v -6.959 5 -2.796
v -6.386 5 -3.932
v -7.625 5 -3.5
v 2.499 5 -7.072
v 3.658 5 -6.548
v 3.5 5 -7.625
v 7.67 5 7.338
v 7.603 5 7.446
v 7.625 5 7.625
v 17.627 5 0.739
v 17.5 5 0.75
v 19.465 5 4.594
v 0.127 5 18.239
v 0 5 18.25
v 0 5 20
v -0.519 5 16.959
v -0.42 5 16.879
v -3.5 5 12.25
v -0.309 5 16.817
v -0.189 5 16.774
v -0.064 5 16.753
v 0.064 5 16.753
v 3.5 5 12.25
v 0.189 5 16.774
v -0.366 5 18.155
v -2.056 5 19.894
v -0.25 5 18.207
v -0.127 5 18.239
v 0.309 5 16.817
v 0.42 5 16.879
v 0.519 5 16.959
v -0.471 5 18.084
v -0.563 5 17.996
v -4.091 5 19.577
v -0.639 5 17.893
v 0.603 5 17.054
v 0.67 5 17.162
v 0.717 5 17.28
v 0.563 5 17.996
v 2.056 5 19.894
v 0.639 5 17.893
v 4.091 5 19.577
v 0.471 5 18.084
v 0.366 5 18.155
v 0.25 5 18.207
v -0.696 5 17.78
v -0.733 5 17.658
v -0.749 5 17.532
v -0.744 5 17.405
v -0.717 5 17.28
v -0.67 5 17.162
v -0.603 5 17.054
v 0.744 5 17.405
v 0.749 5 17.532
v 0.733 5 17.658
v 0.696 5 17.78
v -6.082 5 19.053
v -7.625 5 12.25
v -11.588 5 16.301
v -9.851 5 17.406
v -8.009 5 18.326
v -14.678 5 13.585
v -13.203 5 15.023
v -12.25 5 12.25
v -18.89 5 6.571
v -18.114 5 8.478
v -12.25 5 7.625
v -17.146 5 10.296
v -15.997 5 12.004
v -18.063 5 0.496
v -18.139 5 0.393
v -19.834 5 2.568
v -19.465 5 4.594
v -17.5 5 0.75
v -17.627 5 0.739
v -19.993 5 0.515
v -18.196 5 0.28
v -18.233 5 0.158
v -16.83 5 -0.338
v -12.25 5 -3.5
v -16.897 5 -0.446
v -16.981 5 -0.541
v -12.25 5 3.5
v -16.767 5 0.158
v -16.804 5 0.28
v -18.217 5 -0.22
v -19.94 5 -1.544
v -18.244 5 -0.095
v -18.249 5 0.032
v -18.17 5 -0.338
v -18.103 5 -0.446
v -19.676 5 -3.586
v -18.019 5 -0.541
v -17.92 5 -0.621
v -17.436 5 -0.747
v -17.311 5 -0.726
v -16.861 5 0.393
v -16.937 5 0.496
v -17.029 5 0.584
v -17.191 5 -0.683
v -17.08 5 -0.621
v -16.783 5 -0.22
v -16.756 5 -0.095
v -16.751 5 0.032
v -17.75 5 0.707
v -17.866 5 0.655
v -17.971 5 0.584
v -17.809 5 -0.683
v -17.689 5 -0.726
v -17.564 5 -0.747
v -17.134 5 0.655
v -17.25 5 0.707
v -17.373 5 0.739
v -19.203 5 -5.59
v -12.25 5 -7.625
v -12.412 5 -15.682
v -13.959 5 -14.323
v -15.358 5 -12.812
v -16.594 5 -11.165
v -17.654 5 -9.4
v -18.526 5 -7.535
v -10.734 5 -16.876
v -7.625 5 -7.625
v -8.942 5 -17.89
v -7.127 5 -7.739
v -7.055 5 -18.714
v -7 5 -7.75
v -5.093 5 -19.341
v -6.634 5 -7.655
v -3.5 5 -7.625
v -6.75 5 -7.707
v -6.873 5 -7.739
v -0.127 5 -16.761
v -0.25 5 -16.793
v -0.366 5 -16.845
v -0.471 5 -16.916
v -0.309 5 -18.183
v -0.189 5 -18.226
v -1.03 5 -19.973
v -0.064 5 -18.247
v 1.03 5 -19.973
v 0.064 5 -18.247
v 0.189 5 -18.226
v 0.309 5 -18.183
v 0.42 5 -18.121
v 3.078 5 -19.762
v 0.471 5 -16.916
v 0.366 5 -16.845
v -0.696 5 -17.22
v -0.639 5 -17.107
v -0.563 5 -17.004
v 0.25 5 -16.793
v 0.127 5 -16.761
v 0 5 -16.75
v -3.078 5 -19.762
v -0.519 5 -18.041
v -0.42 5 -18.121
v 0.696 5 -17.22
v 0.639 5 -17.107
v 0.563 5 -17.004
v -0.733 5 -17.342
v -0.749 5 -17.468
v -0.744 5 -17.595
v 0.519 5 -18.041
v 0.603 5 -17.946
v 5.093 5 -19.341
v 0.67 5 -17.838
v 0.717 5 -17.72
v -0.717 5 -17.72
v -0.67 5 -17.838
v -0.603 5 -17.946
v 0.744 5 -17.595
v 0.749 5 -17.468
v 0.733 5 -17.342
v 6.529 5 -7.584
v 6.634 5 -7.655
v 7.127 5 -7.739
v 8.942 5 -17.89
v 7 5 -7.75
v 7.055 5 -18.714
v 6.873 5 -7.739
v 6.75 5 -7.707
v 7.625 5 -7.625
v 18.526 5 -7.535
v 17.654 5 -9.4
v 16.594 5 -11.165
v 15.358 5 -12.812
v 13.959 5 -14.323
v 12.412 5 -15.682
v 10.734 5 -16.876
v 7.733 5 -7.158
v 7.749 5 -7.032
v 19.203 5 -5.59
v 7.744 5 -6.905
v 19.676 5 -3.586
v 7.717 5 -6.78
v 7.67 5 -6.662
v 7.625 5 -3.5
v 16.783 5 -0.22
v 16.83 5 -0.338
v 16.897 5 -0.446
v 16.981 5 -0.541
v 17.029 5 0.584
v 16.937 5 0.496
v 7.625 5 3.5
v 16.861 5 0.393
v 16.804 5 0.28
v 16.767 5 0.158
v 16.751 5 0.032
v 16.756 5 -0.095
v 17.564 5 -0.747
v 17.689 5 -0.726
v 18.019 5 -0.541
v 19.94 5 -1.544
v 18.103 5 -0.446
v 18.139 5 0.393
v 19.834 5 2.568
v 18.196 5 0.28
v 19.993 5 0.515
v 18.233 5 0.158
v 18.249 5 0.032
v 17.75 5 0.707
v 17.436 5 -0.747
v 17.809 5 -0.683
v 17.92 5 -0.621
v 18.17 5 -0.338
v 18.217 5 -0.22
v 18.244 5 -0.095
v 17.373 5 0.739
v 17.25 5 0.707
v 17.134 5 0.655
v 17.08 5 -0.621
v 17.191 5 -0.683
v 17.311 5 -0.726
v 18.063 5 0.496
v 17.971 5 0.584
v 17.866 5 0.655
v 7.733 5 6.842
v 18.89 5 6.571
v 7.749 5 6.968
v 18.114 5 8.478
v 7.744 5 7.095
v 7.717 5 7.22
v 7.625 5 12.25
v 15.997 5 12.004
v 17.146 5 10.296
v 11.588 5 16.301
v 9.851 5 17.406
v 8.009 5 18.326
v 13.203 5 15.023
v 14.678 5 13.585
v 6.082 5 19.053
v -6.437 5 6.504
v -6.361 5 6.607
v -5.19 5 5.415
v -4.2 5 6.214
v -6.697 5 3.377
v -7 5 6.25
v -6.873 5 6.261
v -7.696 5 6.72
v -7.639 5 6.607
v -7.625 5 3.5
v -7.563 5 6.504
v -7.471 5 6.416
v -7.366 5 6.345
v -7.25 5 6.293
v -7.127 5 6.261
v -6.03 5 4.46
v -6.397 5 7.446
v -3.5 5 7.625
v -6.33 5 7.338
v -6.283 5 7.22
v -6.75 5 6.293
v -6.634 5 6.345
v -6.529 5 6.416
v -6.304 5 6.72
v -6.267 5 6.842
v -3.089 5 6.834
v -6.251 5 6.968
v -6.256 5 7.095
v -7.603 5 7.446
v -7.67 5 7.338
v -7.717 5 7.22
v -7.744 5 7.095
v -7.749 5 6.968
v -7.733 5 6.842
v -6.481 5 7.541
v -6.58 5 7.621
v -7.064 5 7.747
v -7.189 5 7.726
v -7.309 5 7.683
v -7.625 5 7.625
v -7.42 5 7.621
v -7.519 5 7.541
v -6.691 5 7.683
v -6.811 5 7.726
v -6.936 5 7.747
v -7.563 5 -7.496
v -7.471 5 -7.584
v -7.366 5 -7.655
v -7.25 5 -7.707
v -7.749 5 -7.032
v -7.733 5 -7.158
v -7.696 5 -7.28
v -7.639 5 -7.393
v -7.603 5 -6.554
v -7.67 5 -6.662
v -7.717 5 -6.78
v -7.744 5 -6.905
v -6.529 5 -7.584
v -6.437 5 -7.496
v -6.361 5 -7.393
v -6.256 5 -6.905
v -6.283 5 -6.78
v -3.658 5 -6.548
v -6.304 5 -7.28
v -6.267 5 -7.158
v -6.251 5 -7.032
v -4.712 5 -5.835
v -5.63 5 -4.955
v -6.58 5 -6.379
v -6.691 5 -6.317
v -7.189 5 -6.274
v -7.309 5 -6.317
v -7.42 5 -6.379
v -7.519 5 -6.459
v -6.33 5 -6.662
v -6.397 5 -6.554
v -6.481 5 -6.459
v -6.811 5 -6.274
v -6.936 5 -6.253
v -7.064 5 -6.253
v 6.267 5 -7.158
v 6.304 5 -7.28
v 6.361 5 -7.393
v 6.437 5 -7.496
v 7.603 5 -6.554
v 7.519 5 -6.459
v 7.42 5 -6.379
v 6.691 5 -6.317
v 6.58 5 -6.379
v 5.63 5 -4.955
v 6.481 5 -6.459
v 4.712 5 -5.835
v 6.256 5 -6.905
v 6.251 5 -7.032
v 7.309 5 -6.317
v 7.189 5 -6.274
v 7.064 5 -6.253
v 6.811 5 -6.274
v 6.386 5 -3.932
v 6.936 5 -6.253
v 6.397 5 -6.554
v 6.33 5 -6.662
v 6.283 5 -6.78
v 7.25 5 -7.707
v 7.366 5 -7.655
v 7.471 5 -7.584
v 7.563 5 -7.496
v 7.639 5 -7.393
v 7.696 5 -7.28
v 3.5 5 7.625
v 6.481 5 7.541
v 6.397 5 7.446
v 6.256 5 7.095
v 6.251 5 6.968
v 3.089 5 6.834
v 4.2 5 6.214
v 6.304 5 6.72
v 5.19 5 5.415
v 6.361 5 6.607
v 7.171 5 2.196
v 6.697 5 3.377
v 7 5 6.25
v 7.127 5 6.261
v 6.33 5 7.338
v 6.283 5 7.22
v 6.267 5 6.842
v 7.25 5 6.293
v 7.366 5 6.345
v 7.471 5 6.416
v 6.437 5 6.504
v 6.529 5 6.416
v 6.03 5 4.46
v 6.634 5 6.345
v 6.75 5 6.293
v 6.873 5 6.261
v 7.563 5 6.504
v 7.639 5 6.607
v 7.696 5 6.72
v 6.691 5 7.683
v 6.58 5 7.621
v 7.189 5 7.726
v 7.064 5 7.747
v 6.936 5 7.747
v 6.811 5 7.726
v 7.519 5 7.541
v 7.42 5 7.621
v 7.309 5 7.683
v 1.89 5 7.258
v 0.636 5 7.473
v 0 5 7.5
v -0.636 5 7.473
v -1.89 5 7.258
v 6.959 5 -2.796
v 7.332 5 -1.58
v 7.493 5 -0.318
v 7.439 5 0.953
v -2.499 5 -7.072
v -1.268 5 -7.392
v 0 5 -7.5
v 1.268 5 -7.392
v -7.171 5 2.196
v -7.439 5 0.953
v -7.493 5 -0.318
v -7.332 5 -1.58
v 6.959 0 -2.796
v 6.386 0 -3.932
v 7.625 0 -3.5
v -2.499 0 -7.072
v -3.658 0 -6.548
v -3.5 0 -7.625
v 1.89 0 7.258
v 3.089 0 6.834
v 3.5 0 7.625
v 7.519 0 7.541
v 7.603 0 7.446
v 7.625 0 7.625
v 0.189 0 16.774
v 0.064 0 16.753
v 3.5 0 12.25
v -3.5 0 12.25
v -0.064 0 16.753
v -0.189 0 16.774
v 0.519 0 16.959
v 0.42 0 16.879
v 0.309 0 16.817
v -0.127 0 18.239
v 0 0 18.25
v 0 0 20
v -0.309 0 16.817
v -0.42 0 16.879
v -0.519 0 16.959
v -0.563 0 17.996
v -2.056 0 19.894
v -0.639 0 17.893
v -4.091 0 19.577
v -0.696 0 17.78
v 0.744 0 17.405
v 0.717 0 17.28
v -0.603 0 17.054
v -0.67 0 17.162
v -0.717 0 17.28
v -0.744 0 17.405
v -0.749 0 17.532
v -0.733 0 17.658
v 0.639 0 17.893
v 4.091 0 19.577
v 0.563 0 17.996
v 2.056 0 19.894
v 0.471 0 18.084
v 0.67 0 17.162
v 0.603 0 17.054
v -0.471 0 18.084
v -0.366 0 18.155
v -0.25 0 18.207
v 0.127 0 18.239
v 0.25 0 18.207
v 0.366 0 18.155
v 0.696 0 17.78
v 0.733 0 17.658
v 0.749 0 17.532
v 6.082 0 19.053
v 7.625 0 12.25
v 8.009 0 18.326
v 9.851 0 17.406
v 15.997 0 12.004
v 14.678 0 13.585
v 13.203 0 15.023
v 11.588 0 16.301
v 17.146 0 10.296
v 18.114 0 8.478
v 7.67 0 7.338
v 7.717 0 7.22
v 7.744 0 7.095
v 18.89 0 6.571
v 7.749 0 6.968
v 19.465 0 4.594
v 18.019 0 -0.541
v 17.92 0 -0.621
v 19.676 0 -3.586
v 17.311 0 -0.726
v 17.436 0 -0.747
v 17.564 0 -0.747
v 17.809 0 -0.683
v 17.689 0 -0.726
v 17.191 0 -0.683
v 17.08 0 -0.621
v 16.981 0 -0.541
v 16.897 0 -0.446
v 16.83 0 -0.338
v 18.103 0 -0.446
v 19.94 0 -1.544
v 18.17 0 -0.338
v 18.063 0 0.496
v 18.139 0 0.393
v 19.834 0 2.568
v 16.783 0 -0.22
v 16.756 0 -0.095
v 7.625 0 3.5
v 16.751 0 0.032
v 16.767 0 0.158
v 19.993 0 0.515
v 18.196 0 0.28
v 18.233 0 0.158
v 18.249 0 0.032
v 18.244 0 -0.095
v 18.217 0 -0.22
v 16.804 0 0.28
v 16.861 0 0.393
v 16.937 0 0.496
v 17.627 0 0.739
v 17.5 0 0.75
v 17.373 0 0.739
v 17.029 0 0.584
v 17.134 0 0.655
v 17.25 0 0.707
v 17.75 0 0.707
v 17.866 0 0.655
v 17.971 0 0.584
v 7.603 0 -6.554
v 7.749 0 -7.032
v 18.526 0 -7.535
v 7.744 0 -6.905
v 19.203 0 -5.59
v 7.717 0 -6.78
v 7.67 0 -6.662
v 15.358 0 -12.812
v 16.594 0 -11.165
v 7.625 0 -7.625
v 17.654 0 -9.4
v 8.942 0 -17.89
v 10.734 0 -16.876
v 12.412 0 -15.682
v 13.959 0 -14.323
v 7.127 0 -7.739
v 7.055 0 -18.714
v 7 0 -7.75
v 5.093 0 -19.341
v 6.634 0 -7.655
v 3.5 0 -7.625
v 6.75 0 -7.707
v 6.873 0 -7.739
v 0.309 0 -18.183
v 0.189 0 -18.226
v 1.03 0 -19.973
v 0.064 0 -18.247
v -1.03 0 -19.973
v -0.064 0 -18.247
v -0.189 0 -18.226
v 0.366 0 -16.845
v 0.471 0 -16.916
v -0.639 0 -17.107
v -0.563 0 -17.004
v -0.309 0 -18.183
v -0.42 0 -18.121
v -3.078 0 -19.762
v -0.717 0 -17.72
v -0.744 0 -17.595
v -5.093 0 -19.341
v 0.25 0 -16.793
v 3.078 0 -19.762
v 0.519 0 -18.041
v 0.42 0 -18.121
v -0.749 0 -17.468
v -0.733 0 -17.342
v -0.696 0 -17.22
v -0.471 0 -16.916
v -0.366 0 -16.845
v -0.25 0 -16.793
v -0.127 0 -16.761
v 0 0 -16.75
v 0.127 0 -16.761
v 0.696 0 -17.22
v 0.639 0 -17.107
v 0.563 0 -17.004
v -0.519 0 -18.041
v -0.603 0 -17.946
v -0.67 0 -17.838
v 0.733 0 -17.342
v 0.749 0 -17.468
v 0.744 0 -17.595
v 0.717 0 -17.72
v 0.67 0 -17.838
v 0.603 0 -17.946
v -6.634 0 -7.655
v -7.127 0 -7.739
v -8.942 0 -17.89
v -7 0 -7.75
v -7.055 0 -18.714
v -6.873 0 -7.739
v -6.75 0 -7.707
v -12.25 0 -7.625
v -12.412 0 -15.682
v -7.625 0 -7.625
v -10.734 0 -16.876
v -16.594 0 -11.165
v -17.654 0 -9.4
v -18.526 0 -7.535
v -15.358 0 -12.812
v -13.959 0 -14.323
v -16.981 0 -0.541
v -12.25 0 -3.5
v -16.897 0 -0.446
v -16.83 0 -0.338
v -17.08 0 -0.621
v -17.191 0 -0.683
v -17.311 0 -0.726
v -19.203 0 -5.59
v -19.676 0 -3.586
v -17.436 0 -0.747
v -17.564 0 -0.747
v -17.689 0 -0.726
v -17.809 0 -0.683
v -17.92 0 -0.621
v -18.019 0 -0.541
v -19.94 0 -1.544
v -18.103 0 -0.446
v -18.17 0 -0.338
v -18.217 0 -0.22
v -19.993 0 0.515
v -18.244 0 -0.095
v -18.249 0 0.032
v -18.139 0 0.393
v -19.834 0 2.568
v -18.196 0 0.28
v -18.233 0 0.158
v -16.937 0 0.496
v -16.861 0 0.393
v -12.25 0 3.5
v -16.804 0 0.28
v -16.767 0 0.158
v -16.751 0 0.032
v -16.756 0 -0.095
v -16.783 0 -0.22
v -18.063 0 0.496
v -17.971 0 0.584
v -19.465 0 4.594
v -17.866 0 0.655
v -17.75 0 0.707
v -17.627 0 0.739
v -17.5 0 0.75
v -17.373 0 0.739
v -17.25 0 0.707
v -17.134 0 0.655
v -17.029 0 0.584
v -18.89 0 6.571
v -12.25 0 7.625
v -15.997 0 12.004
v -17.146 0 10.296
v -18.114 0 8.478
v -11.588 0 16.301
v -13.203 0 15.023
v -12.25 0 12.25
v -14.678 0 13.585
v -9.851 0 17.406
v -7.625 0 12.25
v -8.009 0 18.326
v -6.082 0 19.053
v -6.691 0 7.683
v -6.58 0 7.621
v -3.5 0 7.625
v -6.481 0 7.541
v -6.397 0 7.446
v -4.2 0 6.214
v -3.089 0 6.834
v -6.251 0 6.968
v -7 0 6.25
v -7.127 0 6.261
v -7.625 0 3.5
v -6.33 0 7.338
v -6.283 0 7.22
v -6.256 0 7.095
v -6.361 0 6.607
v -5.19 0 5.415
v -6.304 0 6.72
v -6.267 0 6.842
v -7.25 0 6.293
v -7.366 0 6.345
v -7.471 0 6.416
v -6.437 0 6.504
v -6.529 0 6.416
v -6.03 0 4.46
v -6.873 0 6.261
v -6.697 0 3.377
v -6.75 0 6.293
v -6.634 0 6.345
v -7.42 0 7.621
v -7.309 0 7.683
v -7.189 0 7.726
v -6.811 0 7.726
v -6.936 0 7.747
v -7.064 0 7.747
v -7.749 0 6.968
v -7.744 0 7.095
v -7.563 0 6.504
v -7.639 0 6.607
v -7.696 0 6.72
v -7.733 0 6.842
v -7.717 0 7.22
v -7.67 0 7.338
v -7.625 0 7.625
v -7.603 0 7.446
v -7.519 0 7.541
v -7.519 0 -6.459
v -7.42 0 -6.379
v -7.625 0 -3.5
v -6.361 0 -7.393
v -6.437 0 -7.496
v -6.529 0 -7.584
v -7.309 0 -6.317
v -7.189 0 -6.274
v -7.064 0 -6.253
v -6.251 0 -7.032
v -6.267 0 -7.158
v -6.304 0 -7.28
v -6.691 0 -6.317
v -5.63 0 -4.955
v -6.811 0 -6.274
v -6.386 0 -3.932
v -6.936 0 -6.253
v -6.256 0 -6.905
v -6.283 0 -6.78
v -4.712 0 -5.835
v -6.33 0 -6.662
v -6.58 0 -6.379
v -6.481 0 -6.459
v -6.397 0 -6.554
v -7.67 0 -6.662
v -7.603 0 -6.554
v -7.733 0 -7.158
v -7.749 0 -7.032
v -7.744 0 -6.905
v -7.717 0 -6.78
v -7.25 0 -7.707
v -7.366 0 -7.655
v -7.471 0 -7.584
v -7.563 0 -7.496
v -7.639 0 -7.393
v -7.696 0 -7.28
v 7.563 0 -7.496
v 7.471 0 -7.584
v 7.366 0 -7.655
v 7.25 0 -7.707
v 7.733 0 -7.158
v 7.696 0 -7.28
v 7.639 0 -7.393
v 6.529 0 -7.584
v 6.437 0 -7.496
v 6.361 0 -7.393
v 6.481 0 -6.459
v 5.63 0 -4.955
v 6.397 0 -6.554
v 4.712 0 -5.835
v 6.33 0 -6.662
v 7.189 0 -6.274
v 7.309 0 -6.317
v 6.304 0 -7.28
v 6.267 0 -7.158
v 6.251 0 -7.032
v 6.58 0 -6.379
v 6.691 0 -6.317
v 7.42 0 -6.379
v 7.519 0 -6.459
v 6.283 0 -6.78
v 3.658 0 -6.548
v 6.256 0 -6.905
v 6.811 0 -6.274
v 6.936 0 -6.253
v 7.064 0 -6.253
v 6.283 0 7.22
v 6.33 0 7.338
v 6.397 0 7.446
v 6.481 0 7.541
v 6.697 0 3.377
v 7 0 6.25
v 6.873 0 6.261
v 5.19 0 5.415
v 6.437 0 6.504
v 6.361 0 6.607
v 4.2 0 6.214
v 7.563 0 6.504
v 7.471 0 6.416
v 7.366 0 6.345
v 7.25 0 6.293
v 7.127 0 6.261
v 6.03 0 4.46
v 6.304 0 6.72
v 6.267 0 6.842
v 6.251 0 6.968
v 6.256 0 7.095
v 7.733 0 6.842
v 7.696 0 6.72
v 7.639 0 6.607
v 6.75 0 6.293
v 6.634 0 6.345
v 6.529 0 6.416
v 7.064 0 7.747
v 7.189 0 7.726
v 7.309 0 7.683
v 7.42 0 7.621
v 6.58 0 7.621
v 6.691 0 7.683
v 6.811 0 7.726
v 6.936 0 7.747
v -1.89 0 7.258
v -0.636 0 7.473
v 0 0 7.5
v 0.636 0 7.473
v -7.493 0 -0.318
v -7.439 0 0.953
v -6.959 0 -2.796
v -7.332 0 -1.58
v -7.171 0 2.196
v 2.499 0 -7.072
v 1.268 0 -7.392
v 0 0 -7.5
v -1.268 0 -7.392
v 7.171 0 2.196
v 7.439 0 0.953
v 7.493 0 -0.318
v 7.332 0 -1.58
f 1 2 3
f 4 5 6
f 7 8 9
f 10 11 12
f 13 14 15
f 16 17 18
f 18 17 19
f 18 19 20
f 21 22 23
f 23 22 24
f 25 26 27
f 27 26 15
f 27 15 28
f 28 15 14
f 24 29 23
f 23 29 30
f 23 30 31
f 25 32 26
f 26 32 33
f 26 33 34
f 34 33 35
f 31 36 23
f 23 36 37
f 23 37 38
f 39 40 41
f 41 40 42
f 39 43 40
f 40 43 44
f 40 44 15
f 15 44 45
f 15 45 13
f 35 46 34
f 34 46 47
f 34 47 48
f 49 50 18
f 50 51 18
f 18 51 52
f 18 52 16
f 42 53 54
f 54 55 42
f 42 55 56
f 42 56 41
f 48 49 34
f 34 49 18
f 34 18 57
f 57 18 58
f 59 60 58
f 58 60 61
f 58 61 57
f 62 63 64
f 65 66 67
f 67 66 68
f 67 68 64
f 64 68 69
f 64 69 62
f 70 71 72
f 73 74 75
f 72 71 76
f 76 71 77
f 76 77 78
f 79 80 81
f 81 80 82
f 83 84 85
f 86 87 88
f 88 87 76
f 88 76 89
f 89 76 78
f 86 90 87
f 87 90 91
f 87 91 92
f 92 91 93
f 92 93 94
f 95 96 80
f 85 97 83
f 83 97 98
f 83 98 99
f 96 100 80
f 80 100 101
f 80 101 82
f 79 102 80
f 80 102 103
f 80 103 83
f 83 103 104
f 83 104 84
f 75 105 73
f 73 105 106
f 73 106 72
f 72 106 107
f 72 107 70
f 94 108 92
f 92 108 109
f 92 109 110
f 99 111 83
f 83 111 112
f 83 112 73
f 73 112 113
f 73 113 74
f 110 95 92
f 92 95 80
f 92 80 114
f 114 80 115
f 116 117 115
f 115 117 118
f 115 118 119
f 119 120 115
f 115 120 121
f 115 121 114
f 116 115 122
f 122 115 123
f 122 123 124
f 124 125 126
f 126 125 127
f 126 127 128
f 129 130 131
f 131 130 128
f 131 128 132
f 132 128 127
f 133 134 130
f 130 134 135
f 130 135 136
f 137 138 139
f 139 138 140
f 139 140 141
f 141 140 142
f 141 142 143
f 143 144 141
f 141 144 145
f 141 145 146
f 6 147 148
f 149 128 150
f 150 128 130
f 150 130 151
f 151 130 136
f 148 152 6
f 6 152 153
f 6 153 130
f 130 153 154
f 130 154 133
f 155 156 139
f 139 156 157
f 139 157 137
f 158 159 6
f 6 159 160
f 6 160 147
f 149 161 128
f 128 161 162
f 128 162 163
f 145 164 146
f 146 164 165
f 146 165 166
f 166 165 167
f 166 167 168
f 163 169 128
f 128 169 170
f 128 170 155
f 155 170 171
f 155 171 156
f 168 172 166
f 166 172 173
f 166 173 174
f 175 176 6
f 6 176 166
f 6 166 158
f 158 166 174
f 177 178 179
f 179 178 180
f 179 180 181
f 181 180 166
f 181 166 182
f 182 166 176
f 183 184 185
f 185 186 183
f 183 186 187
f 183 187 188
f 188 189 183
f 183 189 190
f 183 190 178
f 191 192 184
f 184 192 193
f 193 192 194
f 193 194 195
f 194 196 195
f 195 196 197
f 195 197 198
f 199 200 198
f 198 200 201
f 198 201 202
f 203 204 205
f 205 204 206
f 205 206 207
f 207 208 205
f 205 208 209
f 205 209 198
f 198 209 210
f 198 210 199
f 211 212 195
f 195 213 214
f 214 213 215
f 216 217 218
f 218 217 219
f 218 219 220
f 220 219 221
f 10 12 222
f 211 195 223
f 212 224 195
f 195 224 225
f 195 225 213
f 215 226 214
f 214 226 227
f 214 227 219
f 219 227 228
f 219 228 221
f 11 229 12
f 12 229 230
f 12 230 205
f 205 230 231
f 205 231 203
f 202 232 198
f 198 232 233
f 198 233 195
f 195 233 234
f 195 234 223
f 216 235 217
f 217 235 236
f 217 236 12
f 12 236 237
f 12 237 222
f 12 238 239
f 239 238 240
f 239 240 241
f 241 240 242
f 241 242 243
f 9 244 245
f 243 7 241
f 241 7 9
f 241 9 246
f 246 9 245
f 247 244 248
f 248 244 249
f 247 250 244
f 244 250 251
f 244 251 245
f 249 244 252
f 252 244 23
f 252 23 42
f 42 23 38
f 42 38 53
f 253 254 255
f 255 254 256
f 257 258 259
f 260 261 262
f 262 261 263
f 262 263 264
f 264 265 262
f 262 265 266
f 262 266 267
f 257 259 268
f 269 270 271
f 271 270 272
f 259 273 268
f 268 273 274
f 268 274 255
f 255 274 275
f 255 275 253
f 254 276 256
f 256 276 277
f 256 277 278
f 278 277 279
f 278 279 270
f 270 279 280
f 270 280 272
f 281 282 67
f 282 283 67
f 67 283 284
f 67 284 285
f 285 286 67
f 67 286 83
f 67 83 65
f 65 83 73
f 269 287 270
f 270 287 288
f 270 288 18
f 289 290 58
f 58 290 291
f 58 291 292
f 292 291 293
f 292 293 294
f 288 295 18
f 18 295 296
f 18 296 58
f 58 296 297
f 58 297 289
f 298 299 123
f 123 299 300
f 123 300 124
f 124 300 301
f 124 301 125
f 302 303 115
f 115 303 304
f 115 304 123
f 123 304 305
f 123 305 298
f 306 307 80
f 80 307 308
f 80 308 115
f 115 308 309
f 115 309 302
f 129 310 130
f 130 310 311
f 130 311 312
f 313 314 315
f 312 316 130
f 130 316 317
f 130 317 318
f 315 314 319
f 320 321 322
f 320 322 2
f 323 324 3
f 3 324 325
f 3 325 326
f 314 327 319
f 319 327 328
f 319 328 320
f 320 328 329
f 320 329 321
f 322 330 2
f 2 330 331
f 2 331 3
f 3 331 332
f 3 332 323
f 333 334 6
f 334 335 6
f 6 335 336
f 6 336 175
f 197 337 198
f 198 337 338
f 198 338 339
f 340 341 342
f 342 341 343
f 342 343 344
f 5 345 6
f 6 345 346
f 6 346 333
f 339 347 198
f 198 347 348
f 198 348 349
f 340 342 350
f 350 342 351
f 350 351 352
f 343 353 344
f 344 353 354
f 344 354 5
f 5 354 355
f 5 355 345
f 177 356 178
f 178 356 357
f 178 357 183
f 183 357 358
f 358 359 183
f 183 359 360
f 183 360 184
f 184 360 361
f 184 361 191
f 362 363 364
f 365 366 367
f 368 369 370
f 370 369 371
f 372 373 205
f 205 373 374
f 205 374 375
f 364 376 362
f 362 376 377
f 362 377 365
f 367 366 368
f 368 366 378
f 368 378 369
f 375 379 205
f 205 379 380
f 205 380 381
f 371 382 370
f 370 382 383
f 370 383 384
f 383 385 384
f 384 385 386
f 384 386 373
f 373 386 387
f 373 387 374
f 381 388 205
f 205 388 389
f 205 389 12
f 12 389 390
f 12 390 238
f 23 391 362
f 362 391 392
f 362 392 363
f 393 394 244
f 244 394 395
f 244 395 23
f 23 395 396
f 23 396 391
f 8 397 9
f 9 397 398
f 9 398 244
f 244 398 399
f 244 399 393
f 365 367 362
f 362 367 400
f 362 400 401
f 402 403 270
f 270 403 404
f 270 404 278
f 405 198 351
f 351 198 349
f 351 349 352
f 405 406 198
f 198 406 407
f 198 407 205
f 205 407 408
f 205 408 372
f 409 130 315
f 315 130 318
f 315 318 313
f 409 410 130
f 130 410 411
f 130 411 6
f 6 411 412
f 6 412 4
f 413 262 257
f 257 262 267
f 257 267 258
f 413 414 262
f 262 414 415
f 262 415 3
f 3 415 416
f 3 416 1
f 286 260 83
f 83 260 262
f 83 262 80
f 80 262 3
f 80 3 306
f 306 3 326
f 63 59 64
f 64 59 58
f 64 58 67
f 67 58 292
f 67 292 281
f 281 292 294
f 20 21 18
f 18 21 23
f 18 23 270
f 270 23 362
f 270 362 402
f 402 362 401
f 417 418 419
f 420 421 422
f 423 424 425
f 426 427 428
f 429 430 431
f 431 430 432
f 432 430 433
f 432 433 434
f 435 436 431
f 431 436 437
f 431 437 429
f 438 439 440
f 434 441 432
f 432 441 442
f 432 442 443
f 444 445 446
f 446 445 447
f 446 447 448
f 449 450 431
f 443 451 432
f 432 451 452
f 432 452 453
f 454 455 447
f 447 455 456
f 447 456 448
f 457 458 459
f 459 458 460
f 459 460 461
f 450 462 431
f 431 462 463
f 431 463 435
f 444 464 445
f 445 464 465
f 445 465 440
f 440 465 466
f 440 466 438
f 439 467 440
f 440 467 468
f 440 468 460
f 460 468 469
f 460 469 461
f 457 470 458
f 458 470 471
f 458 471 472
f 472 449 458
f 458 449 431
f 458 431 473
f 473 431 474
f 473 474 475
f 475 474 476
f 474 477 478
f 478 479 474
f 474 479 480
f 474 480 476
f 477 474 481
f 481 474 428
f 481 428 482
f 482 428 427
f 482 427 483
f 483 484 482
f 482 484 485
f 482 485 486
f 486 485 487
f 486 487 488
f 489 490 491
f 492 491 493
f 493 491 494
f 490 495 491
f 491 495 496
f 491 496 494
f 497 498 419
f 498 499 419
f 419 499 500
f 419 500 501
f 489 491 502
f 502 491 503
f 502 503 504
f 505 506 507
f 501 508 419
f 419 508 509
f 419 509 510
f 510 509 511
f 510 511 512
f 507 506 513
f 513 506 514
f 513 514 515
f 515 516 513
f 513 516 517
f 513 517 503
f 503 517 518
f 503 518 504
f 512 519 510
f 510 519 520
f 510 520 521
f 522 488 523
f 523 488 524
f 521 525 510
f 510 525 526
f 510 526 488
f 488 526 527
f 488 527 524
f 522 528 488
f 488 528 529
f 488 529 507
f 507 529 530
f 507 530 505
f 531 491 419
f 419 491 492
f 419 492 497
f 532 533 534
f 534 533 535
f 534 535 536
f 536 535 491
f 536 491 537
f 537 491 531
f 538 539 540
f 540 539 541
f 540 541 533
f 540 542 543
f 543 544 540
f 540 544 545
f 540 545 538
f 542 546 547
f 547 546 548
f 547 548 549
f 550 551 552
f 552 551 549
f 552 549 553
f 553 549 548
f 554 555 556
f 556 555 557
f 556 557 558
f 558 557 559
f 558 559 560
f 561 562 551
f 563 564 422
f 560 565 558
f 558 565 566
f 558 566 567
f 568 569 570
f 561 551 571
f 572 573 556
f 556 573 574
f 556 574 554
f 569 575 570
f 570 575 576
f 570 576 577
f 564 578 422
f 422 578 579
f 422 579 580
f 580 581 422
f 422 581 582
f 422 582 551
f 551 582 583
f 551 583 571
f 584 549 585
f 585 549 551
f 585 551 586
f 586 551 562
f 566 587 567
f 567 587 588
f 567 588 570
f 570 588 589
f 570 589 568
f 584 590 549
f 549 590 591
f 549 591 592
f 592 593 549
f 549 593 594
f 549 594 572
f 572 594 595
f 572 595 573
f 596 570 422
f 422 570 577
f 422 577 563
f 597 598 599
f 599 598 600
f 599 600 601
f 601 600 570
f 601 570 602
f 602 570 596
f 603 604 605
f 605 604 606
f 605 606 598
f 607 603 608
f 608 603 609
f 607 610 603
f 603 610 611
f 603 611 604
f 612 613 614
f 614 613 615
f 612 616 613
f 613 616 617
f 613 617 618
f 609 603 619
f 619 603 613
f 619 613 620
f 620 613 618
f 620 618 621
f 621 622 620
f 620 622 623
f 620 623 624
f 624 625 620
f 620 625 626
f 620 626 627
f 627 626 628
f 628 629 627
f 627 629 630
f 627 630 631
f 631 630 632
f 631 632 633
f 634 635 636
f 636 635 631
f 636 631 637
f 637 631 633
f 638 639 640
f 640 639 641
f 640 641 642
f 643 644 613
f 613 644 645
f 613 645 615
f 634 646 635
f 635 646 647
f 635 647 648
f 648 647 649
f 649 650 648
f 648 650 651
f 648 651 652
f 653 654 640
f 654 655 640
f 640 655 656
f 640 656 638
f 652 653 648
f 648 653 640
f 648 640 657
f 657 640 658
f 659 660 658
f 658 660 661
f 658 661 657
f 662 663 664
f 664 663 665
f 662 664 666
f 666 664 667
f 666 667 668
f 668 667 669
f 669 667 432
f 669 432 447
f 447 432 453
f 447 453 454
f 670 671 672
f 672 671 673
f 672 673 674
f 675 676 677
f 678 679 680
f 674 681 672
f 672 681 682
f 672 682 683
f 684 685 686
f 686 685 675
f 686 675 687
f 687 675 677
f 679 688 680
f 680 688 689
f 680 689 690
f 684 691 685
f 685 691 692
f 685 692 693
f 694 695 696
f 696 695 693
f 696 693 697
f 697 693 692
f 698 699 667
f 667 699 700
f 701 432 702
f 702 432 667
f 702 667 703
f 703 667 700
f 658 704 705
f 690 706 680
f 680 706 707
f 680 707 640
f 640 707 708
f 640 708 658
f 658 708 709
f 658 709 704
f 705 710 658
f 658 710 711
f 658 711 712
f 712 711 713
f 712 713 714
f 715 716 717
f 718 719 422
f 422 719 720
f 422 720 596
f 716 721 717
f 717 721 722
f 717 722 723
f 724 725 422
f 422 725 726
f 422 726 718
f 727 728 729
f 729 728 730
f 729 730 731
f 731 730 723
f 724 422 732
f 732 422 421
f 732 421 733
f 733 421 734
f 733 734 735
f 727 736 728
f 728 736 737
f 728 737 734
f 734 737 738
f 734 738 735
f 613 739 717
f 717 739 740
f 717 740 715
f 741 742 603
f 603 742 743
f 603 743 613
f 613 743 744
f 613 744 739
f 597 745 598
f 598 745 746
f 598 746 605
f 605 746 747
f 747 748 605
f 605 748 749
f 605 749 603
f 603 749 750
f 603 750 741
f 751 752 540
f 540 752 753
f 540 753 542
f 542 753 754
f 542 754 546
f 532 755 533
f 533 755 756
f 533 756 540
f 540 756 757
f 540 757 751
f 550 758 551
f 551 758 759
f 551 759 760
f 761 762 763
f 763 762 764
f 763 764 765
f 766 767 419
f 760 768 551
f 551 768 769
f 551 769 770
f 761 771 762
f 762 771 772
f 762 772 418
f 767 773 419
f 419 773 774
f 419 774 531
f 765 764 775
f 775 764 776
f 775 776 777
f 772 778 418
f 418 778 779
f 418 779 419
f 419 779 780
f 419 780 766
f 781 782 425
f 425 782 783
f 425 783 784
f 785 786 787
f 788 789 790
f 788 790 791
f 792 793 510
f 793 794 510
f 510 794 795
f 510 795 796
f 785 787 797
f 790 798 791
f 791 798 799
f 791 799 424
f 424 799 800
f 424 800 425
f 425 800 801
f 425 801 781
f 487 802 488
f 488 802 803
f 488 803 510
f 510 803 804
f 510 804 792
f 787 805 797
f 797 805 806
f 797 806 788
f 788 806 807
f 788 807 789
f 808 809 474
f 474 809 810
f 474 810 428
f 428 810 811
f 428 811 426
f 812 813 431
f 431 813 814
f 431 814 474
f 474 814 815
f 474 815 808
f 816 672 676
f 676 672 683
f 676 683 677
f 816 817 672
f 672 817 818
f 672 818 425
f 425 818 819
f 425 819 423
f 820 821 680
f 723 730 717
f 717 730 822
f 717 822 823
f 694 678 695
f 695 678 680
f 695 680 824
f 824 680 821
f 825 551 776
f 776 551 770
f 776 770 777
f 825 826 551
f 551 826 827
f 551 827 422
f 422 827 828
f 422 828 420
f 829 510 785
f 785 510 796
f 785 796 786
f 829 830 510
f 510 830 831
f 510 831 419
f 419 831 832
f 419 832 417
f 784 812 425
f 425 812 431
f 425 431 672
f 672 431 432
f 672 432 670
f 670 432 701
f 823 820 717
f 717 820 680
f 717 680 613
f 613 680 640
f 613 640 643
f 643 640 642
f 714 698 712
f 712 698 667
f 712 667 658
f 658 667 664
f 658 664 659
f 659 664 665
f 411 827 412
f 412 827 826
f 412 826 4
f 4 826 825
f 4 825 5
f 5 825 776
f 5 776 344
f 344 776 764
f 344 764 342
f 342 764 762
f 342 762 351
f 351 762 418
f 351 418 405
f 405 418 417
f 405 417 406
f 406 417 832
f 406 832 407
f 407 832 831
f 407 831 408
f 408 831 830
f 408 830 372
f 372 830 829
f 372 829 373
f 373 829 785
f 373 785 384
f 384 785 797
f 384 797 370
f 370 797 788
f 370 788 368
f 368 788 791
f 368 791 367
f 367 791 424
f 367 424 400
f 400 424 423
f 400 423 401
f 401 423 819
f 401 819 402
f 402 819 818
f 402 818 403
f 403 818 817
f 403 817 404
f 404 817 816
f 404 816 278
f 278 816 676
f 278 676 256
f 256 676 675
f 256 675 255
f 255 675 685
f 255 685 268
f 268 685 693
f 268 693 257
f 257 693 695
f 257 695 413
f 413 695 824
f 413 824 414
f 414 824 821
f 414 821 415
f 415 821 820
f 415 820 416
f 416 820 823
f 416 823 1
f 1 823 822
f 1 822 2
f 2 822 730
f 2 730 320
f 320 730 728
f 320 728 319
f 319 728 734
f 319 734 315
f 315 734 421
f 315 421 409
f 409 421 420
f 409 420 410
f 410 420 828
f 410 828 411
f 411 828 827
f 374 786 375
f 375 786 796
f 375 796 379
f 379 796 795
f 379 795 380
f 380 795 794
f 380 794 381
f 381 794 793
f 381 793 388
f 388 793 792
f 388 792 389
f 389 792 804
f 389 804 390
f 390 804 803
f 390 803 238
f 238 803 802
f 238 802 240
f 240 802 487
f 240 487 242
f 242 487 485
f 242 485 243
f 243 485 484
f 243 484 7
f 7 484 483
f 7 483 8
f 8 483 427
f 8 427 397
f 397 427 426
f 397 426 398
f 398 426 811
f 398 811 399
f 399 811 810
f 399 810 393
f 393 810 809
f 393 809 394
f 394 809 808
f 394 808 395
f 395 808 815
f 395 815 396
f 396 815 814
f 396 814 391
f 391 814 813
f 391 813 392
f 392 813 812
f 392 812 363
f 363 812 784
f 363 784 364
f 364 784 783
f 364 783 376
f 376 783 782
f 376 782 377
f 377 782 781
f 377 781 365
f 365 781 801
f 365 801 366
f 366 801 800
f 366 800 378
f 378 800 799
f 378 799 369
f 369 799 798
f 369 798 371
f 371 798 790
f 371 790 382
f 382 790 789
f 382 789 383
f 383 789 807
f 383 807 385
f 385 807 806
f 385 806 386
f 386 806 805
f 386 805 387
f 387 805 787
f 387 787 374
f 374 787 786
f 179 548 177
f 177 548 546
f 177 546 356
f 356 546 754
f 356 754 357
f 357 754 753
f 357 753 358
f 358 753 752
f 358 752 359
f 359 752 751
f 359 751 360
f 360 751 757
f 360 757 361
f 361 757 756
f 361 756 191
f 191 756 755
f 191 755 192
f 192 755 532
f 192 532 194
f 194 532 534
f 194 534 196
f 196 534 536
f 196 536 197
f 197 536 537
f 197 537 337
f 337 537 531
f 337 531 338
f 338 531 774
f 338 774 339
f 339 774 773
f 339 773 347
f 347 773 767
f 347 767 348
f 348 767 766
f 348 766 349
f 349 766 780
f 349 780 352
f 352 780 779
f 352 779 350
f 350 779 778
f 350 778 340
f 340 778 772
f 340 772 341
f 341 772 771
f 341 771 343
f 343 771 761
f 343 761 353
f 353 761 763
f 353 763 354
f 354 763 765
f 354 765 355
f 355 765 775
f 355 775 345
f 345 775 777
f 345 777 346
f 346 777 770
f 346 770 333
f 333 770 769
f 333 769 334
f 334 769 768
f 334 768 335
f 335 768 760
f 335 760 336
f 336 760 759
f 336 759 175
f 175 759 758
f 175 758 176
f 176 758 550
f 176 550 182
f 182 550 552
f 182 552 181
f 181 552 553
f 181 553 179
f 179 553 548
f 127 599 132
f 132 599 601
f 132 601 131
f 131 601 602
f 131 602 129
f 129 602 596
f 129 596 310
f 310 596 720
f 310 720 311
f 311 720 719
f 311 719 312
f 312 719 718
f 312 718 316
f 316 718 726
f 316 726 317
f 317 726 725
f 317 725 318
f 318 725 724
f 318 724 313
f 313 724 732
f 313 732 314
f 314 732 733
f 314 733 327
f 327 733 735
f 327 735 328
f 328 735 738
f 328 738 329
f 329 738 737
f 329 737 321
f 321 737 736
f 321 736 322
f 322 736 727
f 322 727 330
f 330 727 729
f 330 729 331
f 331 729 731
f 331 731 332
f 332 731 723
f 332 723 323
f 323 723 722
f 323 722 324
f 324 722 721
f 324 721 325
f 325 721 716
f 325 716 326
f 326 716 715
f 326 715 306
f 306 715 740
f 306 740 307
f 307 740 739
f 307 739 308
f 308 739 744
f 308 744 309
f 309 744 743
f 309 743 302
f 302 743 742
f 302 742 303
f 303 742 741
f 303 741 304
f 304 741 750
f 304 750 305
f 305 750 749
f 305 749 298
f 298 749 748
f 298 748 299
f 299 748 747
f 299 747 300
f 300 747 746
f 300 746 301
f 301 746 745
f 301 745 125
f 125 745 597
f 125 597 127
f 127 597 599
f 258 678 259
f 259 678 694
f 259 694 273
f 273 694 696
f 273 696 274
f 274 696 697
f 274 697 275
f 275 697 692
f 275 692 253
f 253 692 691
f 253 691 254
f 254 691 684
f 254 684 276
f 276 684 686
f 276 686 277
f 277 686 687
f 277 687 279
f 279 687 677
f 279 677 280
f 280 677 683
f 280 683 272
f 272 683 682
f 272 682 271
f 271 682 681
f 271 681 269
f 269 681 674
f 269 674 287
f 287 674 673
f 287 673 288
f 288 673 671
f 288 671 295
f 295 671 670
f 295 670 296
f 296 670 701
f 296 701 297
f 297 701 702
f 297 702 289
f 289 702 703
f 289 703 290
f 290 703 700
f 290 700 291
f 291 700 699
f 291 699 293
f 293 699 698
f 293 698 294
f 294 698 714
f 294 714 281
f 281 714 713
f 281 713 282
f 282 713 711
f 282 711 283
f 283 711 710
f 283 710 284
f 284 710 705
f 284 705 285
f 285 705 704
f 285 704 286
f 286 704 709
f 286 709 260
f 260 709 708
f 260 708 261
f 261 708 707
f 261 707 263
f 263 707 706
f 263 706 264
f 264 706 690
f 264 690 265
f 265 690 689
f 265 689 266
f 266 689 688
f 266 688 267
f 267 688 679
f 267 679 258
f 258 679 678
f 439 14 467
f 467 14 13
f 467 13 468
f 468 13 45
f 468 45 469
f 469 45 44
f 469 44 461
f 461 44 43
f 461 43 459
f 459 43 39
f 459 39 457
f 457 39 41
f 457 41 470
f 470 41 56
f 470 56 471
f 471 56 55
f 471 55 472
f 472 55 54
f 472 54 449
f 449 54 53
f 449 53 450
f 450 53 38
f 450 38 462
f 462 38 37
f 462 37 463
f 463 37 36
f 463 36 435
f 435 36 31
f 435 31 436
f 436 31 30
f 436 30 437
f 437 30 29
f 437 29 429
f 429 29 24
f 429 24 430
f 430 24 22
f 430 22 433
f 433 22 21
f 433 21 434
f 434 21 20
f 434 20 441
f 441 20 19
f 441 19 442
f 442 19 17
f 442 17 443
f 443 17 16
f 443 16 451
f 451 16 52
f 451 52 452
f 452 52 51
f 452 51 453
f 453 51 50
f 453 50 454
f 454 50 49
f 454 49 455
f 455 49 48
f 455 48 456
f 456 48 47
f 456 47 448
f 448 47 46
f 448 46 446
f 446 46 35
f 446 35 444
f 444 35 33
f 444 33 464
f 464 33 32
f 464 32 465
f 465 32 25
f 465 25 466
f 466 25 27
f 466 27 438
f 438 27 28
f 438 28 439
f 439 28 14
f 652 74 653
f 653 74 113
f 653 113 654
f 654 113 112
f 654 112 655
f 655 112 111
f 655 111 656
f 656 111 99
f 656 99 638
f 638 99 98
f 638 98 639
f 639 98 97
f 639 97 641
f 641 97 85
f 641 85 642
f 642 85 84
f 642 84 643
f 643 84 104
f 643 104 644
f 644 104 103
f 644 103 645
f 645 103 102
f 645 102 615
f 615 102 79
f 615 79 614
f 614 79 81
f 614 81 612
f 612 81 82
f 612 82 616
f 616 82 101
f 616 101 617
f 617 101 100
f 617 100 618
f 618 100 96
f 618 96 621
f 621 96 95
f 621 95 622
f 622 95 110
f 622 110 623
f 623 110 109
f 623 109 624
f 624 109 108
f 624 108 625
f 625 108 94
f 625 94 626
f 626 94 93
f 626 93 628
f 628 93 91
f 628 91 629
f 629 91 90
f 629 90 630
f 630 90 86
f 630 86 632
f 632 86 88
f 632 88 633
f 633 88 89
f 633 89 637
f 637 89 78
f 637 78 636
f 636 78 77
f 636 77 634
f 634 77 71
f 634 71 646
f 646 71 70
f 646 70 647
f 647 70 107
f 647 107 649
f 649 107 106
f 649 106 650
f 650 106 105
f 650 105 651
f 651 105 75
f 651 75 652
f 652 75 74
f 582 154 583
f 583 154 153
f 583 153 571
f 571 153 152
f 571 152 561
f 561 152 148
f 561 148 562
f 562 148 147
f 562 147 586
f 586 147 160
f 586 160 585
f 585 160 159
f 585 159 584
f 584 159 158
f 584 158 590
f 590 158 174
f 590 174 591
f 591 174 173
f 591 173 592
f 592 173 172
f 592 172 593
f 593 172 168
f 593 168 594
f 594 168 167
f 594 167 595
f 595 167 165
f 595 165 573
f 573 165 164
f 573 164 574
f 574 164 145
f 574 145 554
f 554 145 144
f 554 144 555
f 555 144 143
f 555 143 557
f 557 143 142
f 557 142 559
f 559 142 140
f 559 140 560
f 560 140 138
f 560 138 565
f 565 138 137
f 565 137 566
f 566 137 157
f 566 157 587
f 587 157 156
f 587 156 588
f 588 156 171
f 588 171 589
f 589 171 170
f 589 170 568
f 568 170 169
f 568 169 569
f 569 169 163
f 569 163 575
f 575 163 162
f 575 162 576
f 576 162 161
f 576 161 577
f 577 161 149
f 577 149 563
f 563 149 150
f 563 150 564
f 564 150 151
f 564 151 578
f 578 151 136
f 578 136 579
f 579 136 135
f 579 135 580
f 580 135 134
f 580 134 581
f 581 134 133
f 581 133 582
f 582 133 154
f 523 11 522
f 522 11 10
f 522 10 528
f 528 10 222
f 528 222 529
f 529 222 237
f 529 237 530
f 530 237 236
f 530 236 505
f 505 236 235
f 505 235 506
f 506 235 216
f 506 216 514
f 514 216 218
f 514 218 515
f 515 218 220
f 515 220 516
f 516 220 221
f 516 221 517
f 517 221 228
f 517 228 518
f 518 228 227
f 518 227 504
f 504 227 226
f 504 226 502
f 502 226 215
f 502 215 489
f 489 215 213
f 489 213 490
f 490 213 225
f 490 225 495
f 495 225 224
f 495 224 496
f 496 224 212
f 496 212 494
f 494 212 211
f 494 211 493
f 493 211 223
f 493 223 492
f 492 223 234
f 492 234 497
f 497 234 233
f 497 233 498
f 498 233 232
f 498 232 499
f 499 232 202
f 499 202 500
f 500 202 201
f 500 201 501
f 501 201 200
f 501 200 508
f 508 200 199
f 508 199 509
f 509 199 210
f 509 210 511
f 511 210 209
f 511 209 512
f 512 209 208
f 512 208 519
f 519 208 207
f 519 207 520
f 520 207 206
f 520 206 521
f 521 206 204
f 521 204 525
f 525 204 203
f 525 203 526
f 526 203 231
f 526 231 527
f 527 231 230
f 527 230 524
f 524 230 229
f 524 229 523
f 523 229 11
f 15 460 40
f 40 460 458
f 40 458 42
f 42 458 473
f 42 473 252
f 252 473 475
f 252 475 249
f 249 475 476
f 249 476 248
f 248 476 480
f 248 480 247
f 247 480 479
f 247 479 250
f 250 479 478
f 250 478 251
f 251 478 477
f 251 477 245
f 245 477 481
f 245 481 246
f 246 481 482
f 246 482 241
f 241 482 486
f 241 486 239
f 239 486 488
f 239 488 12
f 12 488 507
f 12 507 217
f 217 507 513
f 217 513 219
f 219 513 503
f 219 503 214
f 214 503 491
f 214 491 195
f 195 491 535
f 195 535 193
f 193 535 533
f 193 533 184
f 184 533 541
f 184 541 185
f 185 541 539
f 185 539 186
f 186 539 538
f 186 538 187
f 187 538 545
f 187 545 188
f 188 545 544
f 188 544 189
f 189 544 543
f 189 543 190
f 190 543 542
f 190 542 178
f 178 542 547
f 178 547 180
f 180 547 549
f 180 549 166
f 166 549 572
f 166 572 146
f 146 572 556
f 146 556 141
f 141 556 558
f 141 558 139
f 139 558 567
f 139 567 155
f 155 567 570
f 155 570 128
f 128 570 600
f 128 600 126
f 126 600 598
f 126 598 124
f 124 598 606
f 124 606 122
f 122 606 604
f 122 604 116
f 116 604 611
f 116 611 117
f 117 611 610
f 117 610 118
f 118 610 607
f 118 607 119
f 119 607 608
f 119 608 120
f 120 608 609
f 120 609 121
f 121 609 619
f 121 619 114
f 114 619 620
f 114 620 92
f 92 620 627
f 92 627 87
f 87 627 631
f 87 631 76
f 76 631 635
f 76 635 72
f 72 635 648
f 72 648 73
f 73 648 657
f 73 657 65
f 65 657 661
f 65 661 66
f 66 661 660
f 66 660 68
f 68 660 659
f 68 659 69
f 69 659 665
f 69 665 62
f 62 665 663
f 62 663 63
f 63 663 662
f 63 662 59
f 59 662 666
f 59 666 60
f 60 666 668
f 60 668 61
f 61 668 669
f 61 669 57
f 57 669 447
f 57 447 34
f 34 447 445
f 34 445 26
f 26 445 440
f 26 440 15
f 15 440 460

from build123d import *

# Parameters (mm, degrees)
SKETCH_1_W          = 50
SKETCH_1_H          = 50
SKETCH_1_R          = 7.5
EXTRUDE_1_DEPTH     = 5
SKETCH_3_R          = 0.75
CUT_EXTRUDE_2_DEPTH = 36.707142143
SKETCH_4_R          = 0.75
CUT_EXTRUDE_3_DEPTH = 36.707142143
SKETCH_5_OUTSIDE_W  = 66.178
SKETCH_5_OUTSIDE_H  = 66.178
SKETCH_5_OUTSIDE_R  = 20
CUT_EXTRUDE_4_DEPTH = 36.707142143


with BuildPart() as part:
    # 草图1 → 凸台-拉伸1 (new body)
    with BuildSketch(Plane(origin=(0, 0, 0), x_dir=(1, 0, 0), z_dir=(0, 1, 0))):
        Rectangle(SKETCH_1_W, SKETCH_1_H)
        with Locations(Location((0, 0, 0), (0, 0, 270))):
            Circle(SKETCH_1_R, mode=Mode.SUBTRACT)
    extrude(amount=EXTRUDE_1_DEPTH)

    # 草图3 → 切除-拉伸2 (cut, through all)
    with BuildSketch(Plane.XZ):
        with Locations(Location((-7, 7, 0), (0, 0, 270))):
            Circle(SKETCH_3_R)
        with Locations(Location((7, 7, 0), (0, 0, 270))):
            Circle(SKETCH_3_R)
        with Locations(Location((7, -7, 0), (0, 0, 270))):
            Circle(SKETCH_3_R)
        with Locations(Location((-7, -7, 0), (0, 0, 270))):
            Circle(SKETCH_3_R)
    extrude(amount=-CUT_EXTRUDE_2_DEPTH, mode=Mode.SUBTRACT)

    # 草图4 → 切除-拉伸3 (cut, through all)
    with BuildSketch(Plane(origin=(0, 5, 0), x_dir=(1, 0, 0), z_dir=(0, 1, 0))):
        with Locations(Location((0, -17.5, 0), (0, 0, 270))):
            Circle(SKETCH_4_R)
        with Locations(Location((0, 17.5, 0), (0, 0, 270))):
            Circle(SKETCH_4_R)
        with Locations(Location((17.5, 0, 0), (0, 0, 270))):
            Circle(SKETCH_4_R)
        with Locations(Location((-17.5, 0, 0), (0, 0, 270))):
            Circle(SKETCH_4_R)
    extrude(amount=-CUT_EXTRUDE_3_DEPTH, mode=Mode.SUBTRACT)

    # 草图5 outside → 切除-拉伸4 (cut, through all)
    with BuildSketch(Plane(origin=(0, 5, 0), x_dir=(1, 0, 0), z_dir=(0, 1, 0))):
        Rectangle(SKETCH_5_OUTSIDE_W, SKETCH_5_OUTSIDE_H)
        with Locations(Location((0, 0, 0), (0, 0, 270))):
            Circle(SKETCH_5_OUTSIDE_R, mode=Mode.SUBTRACT)
    extrude(amount=-CUT_EXTRUDE_4_DEPTH, mode=Mode.SUBTRACT)


solid = part.part
